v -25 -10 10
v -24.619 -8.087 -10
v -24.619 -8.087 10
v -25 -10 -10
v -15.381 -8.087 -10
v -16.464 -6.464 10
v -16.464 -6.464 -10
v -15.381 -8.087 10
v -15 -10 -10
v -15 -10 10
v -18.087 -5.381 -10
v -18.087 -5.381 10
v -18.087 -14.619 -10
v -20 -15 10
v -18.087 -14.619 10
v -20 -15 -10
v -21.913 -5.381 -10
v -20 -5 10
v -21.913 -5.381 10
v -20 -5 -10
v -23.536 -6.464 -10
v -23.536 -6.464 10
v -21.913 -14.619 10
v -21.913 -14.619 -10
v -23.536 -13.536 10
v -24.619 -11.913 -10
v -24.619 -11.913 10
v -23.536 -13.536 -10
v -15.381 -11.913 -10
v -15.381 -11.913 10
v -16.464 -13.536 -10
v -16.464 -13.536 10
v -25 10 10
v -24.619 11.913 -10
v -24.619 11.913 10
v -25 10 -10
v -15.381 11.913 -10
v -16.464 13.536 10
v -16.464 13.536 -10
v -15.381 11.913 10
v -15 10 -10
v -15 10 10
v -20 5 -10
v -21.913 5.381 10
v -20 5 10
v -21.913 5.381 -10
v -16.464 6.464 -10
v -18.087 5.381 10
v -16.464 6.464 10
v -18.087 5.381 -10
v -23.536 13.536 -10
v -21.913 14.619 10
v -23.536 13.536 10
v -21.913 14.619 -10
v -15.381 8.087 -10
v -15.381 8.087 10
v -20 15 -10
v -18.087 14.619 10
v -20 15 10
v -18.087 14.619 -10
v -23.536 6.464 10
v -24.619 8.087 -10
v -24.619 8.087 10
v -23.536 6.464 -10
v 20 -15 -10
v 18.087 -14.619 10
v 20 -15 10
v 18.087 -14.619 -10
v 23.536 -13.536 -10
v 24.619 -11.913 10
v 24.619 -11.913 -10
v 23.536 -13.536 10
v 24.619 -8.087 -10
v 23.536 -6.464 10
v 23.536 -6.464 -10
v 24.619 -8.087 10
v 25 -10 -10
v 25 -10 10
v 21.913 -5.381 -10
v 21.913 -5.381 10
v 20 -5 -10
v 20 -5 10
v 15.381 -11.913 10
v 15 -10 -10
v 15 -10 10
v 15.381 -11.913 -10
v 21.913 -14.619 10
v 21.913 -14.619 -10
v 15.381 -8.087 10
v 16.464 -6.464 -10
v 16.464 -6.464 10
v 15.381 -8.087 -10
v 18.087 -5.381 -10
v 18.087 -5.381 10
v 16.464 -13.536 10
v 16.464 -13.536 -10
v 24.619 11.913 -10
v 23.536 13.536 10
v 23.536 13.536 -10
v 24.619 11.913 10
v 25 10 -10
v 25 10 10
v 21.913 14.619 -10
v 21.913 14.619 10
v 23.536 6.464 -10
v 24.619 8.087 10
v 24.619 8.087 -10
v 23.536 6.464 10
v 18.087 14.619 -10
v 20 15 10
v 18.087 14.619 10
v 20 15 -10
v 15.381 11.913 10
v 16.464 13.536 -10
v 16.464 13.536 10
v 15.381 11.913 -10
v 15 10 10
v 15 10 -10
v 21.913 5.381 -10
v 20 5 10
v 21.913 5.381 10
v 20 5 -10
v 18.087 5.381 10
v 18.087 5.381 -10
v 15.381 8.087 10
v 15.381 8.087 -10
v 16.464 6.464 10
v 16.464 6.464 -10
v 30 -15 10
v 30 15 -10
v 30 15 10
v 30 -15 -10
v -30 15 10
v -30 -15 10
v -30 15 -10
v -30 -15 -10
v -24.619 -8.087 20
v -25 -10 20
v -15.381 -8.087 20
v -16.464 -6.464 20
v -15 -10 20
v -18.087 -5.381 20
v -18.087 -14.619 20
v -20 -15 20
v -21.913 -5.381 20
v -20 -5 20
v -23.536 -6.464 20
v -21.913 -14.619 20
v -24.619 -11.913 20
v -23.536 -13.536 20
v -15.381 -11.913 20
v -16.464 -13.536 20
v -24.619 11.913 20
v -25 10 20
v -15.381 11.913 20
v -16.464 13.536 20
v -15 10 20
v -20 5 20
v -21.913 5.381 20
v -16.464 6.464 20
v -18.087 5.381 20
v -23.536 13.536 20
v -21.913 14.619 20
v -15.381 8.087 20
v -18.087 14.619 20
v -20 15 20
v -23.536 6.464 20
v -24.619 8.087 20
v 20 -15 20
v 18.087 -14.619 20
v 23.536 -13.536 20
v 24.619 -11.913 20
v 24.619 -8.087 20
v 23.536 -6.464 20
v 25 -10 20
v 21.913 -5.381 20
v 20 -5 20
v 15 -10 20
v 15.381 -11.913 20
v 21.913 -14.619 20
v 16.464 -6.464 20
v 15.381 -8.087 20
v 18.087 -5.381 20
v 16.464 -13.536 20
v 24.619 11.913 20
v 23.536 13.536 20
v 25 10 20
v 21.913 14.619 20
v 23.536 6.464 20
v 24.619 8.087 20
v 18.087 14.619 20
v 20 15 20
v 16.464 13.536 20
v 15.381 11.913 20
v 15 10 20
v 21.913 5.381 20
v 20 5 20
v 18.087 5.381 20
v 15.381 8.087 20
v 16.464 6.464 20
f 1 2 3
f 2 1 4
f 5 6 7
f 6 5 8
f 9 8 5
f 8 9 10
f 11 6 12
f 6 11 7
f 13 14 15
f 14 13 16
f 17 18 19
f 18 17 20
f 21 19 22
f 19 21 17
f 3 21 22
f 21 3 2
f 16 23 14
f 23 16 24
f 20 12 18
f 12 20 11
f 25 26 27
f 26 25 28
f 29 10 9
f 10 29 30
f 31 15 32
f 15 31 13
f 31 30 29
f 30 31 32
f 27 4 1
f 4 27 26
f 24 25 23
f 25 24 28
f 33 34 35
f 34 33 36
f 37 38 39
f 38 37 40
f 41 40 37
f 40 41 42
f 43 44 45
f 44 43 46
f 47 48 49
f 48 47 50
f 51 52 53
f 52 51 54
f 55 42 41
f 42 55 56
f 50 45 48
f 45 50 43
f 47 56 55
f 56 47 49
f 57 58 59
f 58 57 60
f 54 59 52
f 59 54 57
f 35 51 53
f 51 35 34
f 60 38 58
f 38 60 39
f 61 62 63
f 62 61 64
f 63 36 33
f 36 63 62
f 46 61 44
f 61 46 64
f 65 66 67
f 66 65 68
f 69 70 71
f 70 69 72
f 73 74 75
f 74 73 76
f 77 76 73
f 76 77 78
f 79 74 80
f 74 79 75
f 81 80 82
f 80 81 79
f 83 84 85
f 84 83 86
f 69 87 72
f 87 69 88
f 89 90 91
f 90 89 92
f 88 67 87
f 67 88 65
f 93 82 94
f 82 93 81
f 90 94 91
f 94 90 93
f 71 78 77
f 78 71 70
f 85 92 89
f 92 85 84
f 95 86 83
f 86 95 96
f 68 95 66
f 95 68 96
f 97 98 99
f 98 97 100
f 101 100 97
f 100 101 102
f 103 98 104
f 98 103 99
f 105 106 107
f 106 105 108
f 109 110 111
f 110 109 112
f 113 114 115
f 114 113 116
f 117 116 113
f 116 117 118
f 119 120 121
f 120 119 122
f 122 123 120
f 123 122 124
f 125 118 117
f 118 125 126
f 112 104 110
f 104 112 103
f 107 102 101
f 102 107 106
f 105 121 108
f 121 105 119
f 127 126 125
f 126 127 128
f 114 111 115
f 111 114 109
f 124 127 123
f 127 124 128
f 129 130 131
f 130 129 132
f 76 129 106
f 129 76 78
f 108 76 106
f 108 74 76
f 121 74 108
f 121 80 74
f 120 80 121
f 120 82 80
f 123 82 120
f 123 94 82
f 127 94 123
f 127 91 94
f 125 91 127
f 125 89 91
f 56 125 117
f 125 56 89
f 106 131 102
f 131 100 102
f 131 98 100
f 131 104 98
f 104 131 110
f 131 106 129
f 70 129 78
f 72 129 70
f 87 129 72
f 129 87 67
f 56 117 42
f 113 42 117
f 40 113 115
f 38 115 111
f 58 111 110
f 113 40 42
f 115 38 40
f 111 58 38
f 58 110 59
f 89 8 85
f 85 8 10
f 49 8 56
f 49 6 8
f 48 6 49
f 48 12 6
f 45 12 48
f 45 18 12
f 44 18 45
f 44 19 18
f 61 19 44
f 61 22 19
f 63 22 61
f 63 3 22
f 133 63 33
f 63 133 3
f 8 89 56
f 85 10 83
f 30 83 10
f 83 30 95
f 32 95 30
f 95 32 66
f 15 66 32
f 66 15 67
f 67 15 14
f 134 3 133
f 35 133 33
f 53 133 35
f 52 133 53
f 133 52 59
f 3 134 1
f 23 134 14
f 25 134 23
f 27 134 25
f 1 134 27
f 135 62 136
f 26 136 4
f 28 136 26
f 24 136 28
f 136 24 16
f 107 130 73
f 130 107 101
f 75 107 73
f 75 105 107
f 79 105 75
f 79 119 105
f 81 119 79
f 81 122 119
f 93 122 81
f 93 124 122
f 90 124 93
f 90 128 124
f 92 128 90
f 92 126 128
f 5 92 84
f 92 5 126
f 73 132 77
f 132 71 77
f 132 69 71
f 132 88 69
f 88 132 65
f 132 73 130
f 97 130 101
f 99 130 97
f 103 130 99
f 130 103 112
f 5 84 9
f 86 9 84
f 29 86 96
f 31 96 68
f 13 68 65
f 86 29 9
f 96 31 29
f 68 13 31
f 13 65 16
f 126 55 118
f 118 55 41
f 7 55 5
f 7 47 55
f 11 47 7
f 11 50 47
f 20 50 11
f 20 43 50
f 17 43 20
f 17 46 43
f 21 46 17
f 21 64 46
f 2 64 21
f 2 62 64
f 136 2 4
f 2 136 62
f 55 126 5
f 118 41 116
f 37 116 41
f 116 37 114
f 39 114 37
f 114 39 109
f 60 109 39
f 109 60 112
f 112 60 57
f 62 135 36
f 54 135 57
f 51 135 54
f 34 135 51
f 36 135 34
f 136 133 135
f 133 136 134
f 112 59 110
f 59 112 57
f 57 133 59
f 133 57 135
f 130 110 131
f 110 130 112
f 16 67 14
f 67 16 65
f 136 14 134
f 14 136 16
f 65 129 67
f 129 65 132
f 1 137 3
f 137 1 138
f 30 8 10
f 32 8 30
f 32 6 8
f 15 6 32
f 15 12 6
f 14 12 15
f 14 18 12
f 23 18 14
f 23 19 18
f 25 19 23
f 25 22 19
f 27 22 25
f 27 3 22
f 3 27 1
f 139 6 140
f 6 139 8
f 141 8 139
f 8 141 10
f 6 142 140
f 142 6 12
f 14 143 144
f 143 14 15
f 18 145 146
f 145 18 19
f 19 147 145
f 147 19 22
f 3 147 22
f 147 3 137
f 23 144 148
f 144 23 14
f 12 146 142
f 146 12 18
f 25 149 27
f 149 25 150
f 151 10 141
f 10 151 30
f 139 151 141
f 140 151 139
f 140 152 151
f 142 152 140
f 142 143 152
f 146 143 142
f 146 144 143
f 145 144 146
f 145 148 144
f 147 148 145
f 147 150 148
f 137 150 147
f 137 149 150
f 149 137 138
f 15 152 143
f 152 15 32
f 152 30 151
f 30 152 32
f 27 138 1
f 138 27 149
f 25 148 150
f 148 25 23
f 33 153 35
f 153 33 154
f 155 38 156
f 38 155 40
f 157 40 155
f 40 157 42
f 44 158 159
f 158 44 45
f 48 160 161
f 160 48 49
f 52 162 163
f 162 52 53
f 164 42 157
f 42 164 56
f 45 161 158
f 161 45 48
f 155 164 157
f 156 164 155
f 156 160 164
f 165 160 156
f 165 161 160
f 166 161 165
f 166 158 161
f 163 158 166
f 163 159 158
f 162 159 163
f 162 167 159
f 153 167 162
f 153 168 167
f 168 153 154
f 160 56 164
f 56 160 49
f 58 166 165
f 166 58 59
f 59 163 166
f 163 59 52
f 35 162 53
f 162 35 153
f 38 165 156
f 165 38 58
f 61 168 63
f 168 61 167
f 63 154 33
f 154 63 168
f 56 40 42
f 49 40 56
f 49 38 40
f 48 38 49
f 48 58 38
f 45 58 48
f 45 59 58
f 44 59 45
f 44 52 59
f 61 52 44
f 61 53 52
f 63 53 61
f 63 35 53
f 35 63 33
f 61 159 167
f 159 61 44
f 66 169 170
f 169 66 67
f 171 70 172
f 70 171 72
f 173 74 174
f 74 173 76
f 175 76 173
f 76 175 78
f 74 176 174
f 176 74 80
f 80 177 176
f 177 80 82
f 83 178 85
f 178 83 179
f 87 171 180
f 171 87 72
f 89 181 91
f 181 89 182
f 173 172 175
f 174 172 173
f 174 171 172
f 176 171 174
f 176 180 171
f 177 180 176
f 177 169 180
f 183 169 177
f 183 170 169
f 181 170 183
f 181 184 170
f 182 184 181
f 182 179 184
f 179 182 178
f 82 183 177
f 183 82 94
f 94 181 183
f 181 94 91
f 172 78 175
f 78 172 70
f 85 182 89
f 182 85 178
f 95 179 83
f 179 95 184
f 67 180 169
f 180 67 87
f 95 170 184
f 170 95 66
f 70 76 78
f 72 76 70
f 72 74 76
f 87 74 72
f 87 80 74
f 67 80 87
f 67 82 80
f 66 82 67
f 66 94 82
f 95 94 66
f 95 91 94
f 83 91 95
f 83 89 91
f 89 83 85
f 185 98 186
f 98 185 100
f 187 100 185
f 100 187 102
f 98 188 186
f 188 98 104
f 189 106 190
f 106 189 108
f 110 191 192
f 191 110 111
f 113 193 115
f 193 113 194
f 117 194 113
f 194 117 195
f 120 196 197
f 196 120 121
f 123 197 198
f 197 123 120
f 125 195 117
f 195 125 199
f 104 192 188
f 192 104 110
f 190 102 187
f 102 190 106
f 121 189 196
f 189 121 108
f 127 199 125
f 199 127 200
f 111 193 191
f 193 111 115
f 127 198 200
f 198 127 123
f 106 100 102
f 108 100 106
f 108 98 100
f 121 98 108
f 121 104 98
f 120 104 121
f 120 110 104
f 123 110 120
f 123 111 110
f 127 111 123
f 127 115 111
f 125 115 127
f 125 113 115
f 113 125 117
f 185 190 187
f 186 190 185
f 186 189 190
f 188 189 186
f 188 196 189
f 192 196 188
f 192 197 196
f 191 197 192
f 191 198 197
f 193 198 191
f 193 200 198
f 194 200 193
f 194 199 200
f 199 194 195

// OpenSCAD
// Parameters
block_length = 60; // Length of the rectangular block
block_width = 30;  // Width of the rectangular block
block_height = 20; // Height of the rectangular block
hole_diameter = 10; // Diameter of the circular holes
hole_spacing_x = 40; // Spacing between holes along the length
hole_spacing_y = 20; // Spacing between holes along the width
connector_height = 10; // Height of the cylindrical connectors

// Rectangular block with holes
module rectangular_block() {
    difference() {
        // Main block
        cube([block_length, block_width, block_height], center = true);
        
        // Holes
        for (x = [-hole_spacing_x / 2, hole_spacing_x / 2]) {
            for (y = [-hole_spacing_y / 2, hole_spacing_y / 2]) {
                translate([x, y, 0])
                    cylinder(h = block_height + 2, d = hole_diameter, center = true);
            }
        }
    }
}

// Cylindrical connector
module cylindrical_connector() {
    cylinder(h = connector_height, d = hole_diameter, center = true);
}

// Assembly
module assembly() {
    // Layer 1: Rectangular block
    rectangular_block();
    
    // Layer 2: Cylindrical connectors
    for (x = [-hole_spacing_x / 2, hole_spacing_x / 2]) {
        for (y = [-hole_spacing_y / 2, hole_spacing_y / 2]) {
            translate([x, y, block_height / 2 + connector_height / 2])
                cylindrical_connector();
        }
    }
}

// Render the assembly
assembly();
